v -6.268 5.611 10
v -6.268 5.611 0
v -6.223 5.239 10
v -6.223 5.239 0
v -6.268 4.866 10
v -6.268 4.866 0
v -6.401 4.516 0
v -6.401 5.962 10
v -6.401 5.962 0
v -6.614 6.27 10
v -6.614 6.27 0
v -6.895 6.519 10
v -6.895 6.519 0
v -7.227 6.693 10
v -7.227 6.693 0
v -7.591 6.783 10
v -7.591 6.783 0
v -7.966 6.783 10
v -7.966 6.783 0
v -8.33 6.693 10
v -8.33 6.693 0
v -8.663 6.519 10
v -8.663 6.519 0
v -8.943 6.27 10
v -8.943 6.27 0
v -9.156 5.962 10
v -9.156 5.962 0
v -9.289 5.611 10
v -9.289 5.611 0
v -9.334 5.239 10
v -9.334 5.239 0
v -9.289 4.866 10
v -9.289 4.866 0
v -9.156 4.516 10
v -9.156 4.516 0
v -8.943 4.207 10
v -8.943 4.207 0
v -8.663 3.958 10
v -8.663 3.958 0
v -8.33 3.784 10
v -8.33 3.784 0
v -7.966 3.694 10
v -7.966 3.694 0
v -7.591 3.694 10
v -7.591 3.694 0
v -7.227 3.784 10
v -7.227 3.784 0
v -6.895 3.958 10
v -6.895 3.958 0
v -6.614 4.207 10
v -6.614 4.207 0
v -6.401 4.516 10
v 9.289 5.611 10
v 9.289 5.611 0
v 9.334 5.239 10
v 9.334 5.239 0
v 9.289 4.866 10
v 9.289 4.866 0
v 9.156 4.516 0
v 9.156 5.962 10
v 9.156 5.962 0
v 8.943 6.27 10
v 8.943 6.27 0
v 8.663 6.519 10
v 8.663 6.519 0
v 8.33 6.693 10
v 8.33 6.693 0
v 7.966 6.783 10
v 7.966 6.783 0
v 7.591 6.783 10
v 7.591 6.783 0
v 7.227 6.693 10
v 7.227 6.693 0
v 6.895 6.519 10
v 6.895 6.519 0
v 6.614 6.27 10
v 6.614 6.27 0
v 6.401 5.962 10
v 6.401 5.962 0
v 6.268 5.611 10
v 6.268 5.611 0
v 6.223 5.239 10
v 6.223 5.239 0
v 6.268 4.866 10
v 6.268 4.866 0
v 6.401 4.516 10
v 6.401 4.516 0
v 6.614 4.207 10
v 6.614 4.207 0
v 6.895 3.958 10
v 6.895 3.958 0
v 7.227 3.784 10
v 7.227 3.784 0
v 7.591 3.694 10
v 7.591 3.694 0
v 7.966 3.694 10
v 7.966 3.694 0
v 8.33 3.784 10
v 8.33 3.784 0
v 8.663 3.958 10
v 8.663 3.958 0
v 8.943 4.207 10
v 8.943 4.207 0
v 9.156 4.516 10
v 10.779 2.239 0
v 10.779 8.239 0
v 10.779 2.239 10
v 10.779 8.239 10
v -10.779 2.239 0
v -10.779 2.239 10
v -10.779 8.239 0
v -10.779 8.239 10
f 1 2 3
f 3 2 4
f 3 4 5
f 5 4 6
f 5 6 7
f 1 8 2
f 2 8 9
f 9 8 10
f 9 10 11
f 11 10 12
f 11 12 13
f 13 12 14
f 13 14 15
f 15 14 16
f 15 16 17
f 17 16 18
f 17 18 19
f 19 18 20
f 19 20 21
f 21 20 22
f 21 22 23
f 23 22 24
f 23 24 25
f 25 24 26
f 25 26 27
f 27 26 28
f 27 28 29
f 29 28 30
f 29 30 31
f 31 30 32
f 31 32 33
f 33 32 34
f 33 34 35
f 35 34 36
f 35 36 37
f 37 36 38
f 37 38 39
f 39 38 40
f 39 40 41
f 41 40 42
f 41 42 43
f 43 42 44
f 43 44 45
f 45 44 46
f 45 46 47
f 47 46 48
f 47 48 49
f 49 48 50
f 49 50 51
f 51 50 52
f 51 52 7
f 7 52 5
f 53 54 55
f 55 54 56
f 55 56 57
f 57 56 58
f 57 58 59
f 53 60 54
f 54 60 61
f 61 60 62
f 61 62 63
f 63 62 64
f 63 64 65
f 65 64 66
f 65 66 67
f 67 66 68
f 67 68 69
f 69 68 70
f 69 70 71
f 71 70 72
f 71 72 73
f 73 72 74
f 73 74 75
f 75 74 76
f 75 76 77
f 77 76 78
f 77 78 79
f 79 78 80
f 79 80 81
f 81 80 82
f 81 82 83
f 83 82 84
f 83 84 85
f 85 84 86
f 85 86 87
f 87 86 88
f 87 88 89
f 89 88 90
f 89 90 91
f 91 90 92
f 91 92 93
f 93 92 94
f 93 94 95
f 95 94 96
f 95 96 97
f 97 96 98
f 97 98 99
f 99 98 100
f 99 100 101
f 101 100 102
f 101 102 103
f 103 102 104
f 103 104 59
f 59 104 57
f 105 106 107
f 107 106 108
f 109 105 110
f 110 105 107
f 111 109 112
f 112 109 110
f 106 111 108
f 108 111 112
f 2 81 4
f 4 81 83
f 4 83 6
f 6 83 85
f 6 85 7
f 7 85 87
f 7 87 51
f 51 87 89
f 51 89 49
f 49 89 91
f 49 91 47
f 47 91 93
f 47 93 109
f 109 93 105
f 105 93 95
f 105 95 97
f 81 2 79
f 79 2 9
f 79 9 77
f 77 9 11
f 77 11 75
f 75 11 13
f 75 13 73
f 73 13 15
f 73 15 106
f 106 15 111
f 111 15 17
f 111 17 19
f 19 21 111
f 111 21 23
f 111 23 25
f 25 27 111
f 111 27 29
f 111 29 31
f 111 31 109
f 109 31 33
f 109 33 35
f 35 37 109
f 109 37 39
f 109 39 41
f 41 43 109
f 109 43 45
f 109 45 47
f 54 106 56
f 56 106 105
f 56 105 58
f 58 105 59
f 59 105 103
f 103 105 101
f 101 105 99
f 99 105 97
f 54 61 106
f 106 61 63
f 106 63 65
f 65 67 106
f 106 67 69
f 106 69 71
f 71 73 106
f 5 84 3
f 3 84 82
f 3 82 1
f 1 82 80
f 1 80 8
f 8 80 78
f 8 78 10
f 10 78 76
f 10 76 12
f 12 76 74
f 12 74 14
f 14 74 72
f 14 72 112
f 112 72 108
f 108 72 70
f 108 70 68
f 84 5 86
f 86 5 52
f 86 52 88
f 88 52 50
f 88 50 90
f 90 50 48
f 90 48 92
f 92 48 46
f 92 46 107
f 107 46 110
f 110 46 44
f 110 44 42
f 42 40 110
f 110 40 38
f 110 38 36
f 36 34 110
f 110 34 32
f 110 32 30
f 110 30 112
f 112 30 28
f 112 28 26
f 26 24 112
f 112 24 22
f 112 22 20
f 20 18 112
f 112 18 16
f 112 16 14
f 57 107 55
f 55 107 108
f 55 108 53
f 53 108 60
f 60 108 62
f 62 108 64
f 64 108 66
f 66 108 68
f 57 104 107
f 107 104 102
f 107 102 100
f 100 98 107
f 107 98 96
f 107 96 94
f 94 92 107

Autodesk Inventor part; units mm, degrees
ref_plane "YZ Plane" through (0, 0, 0) normal (1, 0, 0) x (0, 1, 0)
ref_plane "XZ Plane" through (0, 0, 0) normal (0, 1, 0) x (-1, 0, 0)
ref_plane "XY Plane" through (0, 0, 0) normal (0, 0, 1) x (1, 0, 0)
sketch "Skizze1" plane through (0, 0, 0) normal (0, 0, 1) x (1, 0, 0)
  circle A0 centre (7.7787, 5.2388) radius 1.5558 projected
  circle A1 centre (-7.7788, 5.2387) radius 1.5558 projected
  line L0 (10.5537, 7.874) -> (10.5537, -7.874) projected
  line L1 (-10.5537, -7.874) -> (-10.5537, 7.874) projected
  line L2 (-10.5537, 7.874) -> (10.5537, 7.874) projected
  line L3 (10.5537, -7.874) -> (-10.5537, -7.874) projected
  line L4 (-10.7788, 8.2387) -> (10.7787, 8.2387)
  line L5 (10.7787, 8.2387) -> (10.7787, 2.2388)
  line L6 (10.7787, 2.2388) -> (-10.7788, 2.2388)
  line L7 (-10.7788, 2.2388) -> (-10.7788, 8.2387)
  point P0 (0, 0)
  dimension "d2" = 3
  dimension "d3" = 3
  dimension "d4" = 3
  dimension "d5" = 3
extrude "Extrusion1" add sketch "Skizze1" along normal blind 10 contours L2 L1 L6 L7 L4 L5 L0 | L0 L6 L1 L2
properties part number "Abstandhalter_MPU"
